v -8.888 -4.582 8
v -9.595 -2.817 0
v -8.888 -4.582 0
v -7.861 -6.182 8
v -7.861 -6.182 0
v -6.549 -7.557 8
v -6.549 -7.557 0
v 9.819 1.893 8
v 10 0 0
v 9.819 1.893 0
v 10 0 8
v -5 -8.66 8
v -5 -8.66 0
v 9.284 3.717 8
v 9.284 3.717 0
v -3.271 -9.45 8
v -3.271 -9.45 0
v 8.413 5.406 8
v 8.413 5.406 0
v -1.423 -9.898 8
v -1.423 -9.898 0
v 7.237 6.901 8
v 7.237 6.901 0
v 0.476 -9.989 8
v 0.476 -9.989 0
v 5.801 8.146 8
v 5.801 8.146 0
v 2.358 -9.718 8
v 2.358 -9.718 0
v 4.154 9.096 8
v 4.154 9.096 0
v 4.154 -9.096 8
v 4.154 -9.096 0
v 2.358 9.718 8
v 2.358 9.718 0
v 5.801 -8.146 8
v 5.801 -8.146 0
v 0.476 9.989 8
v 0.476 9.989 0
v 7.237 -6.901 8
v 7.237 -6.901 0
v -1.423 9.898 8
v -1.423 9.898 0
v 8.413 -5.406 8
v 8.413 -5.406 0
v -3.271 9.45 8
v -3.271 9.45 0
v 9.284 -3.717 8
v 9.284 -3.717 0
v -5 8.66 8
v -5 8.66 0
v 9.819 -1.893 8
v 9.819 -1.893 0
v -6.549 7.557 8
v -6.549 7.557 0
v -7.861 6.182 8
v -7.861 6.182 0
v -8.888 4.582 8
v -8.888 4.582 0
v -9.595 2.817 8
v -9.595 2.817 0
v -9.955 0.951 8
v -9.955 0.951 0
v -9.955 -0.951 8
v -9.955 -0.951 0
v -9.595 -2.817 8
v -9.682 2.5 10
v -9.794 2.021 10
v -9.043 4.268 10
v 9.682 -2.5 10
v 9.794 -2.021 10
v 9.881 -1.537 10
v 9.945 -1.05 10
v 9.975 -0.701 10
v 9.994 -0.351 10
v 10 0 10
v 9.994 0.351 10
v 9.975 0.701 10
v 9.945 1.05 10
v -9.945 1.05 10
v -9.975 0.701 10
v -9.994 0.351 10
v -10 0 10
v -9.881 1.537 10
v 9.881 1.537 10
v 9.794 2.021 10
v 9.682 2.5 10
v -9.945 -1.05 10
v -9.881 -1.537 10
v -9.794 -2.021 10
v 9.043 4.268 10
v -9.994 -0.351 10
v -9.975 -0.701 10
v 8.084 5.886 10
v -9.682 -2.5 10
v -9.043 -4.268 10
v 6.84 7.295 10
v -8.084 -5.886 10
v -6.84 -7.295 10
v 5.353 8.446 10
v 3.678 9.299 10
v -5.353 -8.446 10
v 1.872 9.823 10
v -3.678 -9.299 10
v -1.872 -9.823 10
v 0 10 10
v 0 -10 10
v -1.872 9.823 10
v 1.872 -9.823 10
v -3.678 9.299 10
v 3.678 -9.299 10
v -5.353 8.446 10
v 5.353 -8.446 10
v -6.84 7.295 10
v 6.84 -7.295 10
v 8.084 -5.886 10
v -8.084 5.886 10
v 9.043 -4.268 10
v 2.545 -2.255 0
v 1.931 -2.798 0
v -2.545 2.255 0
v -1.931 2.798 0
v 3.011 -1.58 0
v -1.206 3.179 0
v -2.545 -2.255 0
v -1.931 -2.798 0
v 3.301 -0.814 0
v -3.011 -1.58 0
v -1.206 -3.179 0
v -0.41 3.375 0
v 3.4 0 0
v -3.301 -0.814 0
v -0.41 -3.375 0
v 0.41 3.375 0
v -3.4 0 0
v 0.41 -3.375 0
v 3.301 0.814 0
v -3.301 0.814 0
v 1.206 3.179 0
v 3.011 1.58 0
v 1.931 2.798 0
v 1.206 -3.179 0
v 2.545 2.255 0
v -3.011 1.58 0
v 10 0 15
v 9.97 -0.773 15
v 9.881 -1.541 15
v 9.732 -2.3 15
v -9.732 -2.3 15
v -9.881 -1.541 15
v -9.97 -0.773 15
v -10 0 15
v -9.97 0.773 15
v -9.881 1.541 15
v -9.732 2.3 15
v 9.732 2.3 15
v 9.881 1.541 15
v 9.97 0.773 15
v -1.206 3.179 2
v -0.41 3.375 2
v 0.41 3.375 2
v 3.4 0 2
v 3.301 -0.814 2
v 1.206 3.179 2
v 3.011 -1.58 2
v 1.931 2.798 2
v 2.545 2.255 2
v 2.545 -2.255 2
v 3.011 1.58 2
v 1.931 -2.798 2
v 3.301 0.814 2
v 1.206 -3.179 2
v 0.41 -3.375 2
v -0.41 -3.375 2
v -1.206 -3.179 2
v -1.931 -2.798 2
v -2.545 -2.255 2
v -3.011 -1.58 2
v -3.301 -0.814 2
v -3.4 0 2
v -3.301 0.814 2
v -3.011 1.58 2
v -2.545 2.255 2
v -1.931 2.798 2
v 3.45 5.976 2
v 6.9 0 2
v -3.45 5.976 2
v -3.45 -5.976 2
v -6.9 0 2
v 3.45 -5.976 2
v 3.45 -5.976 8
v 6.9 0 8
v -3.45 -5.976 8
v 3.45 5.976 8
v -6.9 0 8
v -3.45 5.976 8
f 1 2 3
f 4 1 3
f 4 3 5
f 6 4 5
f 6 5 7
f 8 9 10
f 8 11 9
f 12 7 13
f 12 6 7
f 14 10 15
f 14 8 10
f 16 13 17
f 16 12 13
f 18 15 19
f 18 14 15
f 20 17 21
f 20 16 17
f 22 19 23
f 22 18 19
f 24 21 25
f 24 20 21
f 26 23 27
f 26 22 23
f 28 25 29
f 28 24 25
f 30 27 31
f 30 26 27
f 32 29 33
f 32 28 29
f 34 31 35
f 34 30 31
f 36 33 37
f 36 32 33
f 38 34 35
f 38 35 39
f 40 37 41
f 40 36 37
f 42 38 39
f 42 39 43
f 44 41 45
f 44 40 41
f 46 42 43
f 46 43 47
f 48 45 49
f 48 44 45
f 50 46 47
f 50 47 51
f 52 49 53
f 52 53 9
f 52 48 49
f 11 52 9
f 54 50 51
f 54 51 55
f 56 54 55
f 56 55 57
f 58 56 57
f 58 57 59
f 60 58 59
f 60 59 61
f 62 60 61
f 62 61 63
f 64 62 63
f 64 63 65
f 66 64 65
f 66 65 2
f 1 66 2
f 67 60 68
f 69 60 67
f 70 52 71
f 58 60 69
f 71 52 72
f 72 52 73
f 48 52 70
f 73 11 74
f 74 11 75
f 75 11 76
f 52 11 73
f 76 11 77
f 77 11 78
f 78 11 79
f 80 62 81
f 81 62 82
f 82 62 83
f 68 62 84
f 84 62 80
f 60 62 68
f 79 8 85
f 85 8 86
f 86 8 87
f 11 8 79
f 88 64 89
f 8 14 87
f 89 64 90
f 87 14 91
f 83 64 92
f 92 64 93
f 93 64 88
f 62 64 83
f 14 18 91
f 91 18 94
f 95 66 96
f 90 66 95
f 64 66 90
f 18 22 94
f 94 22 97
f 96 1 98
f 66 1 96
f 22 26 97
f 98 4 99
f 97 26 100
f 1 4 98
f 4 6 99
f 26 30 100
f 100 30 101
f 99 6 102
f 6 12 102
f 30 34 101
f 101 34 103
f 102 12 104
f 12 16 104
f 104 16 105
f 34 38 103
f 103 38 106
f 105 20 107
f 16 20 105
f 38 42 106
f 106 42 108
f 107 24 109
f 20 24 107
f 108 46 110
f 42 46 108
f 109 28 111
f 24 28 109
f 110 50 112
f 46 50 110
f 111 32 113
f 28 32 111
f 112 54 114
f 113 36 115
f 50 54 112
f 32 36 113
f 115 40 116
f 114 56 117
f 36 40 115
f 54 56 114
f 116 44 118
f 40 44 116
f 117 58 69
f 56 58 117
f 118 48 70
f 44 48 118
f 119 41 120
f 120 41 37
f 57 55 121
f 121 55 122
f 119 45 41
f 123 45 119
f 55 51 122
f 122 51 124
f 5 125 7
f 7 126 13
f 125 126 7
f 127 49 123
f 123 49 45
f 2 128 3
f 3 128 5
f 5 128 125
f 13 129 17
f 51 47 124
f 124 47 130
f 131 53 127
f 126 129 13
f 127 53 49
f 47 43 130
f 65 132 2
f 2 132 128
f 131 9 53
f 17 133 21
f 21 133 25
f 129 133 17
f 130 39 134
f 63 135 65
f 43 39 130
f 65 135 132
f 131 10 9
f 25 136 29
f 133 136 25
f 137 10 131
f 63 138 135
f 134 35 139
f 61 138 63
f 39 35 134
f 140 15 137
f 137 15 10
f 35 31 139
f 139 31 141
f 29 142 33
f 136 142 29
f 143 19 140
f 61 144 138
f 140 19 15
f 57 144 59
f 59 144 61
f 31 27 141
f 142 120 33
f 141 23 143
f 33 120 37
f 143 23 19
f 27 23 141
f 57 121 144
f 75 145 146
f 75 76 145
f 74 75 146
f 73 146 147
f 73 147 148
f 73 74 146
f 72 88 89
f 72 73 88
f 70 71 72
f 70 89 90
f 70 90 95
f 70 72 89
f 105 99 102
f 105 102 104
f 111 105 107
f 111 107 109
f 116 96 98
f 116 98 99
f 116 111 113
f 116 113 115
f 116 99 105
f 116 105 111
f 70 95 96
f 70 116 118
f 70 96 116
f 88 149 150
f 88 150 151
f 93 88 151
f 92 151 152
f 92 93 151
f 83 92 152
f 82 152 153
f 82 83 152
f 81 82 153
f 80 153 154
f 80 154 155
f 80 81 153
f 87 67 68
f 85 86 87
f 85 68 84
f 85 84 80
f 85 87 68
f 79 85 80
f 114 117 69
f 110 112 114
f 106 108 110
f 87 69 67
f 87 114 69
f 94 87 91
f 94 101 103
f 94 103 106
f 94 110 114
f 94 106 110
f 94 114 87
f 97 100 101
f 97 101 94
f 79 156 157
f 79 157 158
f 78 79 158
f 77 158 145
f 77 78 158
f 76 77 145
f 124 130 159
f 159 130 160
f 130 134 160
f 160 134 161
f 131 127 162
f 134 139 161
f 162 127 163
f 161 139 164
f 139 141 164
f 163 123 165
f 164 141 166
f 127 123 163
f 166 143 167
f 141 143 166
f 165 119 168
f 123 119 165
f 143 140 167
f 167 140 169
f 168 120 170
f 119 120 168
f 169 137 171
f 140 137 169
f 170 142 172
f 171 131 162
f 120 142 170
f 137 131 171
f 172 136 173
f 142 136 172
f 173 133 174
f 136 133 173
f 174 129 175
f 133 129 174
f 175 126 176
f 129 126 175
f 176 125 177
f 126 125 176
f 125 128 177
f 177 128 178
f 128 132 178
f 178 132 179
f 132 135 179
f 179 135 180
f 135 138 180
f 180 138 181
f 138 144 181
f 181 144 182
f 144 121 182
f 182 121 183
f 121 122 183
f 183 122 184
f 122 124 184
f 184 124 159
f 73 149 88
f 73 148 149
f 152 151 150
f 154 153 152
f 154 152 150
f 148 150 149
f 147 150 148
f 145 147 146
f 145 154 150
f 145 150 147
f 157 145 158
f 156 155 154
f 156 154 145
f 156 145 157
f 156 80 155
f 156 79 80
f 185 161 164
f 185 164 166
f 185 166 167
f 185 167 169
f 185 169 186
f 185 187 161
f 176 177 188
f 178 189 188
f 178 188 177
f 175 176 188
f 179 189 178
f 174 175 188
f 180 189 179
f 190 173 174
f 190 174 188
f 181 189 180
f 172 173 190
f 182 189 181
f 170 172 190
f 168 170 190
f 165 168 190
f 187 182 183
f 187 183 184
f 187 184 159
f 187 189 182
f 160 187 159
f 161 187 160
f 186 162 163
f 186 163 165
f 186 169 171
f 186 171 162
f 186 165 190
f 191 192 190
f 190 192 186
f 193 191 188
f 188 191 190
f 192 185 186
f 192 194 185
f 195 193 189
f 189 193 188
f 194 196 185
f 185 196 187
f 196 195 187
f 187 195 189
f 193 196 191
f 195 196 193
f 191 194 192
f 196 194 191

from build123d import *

# Parameters (mm, degrees)
BOX_W           = 20
BOX_H           = 5
BOX_DEPTH       = 5
CYLINDER_R      = 10
CYLINDER_DEPTH  = 8
POCKET_DEPTH    = 6
SKETCH001_R     = 10
PAD_DEPTH       = 2
SKETCH002_R     = 3.4
POCKET001_DEPTH = 2
POCKET002_DEPTH = 20.001
SKETCH004_R     = 15
SKETCH004_R_2   = 10
POCKET003_DEPTH = 15.001


with BuildPart() as attachpart:
    # Box → Box (new body)
    with BuildSketch(Plane(origin=(-10, -2.5, 10), x_dir=(1, 0, 0), z_dir=(0, 0, 1))):
        with Locations((10, 2.5)):
            Rectangle(BOX_W, BOX_H)
    extrude(amount=BOX_DEPTH)


with BuildPart() as attachbody:
    # Cylinder → Cylinder (new body)
    with BuildSketch(Plane.XY):
        Circle(CYLINDER_R)
    extrude(amount=CYLINDER_DEPTH)

    # Sketch (on Face2 of BaseFeature) → Pocket (cut)
    with BuildSketch(Plane.XY.offset(8)):
        Polygon((3.45, -5.975575), (6.9, 0), (3.45, 5.975575), (-3.45, 5.975575), (-6.9, 0), (-3.45, -5.975575), align=None)
    extrude(amount=-POCKET_DEPTH, mode=Mode.SUBTRACT)

    # Sketch001 (on Face2 of Pocket) → Pad (join)
    with BuildSketch(Plane.XY.offset(8)):
        Circle(SKETCH001_R)
    extrude(amount=PAD_DEPTH)

    # Sketch002 (on Face3 of Pad) → Pocket001 (cut)
    with BuildSketch(Plane(origin=(0, 0, 0), x_dir=(1, 0, 0), z_dir=(0, 0, -1))):
        Circle(SKETCH002_R)
    extrude(amount=-POCKET001_DEPTH, mode=Mode.SUBTRACT)

    # Fusion: union AttachPart
    add(attachpart.part)

    # Sketch003 (on Face11 of BaseFeature001) → Pocket002 (cut, through all)
    with BuildSketch(Plane.YZ.offset(10)):
        Polygon((2.3, 15), (2.5, 15), (2.5, 10), (1.05, 10), align=None)
        Polygon((-2.5, 15), (-2.3, 15), (-1.05, 10), (-2.5, 10), align=None)
    extrude(amount=-POCKET002_DEPTH, mode=Mode.SUBTRACT)

    # Sketch004 (on Face3 of Pocket002) → Pocket003 (cut, through all)
    with BuildSketch(Plane(origin=(0, 0, 0), x_dir=(1, 0, 0), z_dir=(0, 0, -1))):
        Circle(SKETCH004_R)
        Circle(SKETCH004_R_2, mode=Mode.SUBTRACT)
    extrude(amount=-POCKET003_DEPTH, mode=Mode.SUBTRACT)


solid = attachbody.part
